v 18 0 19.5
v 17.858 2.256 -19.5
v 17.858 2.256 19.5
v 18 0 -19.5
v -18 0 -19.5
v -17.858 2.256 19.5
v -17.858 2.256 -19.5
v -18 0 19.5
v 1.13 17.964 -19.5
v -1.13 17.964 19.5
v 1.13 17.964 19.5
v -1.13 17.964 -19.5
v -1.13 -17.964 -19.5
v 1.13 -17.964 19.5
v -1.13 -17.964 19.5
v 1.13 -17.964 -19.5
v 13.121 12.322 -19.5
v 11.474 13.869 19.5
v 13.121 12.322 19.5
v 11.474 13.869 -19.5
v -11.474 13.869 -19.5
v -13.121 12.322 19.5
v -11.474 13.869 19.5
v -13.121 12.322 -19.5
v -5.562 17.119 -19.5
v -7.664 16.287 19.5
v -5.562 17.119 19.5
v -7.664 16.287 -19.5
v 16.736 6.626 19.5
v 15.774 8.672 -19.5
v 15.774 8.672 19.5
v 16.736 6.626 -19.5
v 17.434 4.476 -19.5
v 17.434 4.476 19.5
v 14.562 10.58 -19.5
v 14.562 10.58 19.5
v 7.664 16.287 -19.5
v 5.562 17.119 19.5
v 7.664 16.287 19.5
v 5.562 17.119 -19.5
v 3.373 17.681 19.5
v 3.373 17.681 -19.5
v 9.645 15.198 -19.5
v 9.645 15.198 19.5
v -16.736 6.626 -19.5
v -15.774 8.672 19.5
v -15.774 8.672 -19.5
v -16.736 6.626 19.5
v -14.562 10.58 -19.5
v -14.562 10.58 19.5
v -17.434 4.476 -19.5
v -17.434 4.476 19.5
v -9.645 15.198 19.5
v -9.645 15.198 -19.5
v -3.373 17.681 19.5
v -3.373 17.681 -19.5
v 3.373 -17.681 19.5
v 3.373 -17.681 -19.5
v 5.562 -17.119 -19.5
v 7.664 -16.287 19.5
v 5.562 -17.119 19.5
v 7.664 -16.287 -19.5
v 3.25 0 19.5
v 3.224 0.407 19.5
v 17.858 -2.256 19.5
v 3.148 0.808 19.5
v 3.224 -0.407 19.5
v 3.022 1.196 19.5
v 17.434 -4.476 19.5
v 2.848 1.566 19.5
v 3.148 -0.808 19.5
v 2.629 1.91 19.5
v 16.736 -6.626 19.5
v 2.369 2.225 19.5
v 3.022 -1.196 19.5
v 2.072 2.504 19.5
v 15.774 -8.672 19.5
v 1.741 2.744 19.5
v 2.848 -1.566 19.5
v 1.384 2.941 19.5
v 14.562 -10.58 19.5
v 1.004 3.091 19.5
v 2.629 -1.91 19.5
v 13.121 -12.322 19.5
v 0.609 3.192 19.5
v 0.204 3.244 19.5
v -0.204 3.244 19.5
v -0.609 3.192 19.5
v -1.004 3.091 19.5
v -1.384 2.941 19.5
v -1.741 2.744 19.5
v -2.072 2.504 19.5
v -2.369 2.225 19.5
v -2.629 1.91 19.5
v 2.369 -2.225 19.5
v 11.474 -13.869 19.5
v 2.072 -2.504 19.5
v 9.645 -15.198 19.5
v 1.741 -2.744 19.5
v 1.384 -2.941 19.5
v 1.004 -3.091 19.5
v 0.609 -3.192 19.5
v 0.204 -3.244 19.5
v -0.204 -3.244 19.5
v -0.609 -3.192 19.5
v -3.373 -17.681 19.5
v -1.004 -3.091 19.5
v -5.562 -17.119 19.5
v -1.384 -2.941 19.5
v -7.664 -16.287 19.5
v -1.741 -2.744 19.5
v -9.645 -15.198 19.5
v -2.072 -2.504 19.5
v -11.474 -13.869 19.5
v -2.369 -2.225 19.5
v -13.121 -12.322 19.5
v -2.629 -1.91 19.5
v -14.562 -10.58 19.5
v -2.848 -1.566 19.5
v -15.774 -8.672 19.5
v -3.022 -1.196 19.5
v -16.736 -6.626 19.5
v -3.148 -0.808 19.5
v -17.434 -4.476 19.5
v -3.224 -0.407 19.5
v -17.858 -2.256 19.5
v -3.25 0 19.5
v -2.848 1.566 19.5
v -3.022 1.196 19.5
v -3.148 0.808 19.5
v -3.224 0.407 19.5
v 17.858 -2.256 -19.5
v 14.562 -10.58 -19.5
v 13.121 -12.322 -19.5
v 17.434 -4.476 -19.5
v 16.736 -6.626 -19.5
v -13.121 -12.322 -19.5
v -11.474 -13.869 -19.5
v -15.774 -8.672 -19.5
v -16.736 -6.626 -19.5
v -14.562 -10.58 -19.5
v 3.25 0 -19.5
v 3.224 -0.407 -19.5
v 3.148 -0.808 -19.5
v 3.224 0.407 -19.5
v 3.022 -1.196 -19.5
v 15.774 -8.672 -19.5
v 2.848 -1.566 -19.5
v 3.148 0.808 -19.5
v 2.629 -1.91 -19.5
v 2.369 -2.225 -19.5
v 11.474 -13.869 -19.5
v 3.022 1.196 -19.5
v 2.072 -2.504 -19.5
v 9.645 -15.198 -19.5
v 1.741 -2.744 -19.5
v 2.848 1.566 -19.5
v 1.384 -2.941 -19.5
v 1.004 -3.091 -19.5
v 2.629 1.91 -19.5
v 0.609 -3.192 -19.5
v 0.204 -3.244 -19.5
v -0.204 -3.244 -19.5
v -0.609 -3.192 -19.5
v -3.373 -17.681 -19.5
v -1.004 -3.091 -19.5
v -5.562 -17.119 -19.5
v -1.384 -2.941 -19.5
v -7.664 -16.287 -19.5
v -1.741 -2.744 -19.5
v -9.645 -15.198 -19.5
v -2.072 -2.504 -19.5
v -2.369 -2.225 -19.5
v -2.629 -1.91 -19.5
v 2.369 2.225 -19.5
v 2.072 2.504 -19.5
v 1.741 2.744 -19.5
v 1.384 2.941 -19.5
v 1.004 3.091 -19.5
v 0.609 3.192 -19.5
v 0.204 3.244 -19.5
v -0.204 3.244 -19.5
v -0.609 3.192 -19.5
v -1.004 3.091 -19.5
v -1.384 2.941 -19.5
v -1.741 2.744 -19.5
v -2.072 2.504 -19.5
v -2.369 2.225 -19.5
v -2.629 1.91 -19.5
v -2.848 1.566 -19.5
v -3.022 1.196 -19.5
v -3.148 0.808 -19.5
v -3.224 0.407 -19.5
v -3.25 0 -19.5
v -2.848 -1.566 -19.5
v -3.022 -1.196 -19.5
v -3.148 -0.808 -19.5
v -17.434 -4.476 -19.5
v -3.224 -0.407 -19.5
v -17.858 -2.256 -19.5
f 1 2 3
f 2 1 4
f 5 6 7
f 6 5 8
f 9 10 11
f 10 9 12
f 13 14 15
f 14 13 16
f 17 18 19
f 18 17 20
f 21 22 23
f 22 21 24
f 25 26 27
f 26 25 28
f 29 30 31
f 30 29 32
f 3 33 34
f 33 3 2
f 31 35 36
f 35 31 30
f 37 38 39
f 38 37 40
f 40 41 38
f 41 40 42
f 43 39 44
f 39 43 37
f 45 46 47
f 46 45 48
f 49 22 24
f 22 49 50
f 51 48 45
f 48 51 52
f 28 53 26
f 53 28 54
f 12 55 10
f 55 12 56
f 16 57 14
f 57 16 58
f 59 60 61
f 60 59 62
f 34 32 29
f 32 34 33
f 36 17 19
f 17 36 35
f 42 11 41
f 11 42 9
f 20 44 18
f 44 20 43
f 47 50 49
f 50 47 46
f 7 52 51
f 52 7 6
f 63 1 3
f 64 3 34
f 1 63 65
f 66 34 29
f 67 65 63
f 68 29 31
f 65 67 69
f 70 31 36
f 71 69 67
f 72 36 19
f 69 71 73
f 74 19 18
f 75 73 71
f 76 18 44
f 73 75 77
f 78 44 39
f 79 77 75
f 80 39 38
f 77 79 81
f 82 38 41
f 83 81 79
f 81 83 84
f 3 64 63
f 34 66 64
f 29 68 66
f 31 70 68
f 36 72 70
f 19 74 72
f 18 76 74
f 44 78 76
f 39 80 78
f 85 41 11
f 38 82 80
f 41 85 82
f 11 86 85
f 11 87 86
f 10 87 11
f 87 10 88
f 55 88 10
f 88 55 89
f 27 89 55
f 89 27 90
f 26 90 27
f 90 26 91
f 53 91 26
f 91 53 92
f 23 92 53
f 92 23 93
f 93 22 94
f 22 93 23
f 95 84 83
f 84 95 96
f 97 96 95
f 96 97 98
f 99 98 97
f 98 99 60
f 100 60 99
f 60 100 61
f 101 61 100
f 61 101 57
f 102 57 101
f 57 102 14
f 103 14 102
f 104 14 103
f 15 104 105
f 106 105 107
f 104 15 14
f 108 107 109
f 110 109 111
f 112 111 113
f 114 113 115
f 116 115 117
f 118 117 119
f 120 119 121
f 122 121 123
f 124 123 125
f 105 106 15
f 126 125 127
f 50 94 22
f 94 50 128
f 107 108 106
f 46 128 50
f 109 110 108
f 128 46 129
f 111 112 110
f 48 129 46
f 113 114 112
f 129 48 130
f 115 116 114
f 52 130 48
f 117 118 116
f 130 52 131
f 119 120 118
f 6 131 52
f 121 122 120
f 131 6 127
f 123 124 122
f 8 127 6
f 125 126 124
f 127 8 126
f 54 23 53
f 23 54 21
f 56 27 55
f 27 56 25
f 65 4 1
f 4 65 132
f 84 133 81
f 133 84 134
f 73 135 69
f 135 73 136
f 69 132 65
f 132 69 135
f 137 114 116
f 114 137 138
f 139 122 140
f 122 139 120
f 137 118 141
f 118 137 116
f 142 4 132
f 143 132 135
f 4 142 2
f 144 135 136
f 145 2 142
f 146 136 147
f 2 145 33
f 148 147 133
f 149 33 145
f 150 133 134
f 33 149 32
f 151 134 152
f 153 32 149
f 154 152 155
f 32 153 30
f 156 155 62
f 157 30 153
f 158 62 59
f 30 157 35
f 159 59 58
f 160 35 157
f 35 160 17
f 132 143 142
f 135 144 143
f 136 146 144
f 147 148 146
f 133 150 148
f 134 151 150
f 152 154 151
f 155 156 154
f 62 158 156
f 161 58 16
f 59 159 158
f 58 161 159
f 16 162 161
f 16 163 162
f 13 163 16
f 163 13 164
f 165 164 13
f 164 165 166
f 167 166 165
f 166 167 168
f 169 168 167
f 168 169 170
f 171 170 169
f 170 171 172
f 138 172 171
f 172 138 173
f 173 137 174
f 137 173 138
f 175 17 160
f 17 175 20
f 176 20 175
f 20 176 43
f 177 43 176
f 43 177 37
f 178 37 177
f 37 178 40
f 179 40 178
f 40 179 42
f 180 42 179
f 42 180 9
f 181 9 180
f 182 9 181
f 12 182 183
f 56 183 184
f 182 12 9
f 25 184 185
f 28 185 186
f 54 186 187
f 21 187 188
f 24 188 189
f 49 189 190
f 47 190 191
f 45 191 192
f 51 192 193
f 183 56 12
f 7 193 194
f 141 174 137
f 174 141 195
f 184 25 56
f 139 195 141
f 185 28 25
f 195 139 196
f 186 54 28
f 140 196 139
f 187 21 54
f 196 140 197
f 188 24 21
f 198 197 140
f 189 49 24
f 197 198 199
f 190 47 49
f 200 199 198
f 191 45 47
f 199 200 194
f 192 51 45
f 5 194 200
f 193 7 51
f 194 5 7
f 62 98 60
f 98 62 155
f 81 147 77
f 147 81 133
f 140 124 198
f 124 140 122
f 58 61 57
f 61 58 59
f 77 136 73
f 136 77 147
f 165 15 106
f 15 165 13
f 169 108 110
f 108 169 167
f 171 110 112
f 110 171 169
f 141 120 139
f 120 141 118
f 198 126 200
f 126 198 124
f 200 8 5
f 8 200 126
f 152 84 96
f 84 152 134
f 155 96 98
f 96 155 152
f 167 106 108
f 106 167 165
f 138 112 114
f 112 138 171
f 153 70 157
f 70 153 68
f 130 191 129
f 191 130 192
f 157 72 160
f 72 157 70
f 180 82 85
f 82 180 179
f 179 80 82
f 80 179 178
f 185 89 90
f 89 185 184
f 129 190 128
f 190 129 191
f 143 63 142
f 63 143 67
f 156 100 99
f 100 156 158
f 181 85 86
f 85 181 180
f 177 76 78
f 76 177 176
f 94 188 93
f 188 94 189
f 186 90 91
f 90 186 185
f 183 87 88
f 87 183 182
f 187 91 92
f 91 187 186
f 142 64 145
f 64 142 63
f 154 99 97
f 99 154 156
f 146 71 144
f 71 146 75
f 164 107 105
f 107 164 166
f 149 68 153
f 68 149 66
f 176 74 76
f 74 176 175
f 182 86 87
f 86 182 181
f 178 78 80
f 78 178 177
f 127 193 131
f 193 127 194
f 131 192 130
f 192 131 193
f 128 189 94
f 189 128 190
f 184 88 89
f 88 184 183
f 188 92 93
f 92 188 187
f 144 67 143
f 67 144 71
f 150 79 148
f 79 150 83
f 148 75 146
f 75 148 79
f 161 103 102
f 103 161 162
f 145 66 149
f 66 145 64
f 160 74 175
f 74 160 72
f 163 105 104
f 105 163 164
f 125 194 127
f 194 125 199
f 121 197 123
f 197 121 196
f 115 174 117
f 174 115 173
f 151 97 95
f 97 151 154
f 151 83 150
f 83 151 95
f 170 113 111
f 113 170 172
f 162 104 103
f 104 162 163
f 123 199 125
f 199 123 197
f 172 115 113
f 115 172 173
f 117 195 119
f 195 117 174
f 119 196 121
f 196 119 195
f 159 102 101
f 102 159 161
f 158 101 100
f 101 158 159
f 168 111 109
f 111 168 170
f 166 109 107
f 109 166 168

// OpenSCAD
$fn = 50;


difference() {
	union() {
		translate(v = [0, 0, -19.5000000000]) {
			cylinder(h = 39, r = 18.0000000000);
		}
	}
	union() {
		translate(v = [0, 0, -100.0000000000]) {
			cylinder(h = 200, r = 3.2500000000);
		}
	}
}
